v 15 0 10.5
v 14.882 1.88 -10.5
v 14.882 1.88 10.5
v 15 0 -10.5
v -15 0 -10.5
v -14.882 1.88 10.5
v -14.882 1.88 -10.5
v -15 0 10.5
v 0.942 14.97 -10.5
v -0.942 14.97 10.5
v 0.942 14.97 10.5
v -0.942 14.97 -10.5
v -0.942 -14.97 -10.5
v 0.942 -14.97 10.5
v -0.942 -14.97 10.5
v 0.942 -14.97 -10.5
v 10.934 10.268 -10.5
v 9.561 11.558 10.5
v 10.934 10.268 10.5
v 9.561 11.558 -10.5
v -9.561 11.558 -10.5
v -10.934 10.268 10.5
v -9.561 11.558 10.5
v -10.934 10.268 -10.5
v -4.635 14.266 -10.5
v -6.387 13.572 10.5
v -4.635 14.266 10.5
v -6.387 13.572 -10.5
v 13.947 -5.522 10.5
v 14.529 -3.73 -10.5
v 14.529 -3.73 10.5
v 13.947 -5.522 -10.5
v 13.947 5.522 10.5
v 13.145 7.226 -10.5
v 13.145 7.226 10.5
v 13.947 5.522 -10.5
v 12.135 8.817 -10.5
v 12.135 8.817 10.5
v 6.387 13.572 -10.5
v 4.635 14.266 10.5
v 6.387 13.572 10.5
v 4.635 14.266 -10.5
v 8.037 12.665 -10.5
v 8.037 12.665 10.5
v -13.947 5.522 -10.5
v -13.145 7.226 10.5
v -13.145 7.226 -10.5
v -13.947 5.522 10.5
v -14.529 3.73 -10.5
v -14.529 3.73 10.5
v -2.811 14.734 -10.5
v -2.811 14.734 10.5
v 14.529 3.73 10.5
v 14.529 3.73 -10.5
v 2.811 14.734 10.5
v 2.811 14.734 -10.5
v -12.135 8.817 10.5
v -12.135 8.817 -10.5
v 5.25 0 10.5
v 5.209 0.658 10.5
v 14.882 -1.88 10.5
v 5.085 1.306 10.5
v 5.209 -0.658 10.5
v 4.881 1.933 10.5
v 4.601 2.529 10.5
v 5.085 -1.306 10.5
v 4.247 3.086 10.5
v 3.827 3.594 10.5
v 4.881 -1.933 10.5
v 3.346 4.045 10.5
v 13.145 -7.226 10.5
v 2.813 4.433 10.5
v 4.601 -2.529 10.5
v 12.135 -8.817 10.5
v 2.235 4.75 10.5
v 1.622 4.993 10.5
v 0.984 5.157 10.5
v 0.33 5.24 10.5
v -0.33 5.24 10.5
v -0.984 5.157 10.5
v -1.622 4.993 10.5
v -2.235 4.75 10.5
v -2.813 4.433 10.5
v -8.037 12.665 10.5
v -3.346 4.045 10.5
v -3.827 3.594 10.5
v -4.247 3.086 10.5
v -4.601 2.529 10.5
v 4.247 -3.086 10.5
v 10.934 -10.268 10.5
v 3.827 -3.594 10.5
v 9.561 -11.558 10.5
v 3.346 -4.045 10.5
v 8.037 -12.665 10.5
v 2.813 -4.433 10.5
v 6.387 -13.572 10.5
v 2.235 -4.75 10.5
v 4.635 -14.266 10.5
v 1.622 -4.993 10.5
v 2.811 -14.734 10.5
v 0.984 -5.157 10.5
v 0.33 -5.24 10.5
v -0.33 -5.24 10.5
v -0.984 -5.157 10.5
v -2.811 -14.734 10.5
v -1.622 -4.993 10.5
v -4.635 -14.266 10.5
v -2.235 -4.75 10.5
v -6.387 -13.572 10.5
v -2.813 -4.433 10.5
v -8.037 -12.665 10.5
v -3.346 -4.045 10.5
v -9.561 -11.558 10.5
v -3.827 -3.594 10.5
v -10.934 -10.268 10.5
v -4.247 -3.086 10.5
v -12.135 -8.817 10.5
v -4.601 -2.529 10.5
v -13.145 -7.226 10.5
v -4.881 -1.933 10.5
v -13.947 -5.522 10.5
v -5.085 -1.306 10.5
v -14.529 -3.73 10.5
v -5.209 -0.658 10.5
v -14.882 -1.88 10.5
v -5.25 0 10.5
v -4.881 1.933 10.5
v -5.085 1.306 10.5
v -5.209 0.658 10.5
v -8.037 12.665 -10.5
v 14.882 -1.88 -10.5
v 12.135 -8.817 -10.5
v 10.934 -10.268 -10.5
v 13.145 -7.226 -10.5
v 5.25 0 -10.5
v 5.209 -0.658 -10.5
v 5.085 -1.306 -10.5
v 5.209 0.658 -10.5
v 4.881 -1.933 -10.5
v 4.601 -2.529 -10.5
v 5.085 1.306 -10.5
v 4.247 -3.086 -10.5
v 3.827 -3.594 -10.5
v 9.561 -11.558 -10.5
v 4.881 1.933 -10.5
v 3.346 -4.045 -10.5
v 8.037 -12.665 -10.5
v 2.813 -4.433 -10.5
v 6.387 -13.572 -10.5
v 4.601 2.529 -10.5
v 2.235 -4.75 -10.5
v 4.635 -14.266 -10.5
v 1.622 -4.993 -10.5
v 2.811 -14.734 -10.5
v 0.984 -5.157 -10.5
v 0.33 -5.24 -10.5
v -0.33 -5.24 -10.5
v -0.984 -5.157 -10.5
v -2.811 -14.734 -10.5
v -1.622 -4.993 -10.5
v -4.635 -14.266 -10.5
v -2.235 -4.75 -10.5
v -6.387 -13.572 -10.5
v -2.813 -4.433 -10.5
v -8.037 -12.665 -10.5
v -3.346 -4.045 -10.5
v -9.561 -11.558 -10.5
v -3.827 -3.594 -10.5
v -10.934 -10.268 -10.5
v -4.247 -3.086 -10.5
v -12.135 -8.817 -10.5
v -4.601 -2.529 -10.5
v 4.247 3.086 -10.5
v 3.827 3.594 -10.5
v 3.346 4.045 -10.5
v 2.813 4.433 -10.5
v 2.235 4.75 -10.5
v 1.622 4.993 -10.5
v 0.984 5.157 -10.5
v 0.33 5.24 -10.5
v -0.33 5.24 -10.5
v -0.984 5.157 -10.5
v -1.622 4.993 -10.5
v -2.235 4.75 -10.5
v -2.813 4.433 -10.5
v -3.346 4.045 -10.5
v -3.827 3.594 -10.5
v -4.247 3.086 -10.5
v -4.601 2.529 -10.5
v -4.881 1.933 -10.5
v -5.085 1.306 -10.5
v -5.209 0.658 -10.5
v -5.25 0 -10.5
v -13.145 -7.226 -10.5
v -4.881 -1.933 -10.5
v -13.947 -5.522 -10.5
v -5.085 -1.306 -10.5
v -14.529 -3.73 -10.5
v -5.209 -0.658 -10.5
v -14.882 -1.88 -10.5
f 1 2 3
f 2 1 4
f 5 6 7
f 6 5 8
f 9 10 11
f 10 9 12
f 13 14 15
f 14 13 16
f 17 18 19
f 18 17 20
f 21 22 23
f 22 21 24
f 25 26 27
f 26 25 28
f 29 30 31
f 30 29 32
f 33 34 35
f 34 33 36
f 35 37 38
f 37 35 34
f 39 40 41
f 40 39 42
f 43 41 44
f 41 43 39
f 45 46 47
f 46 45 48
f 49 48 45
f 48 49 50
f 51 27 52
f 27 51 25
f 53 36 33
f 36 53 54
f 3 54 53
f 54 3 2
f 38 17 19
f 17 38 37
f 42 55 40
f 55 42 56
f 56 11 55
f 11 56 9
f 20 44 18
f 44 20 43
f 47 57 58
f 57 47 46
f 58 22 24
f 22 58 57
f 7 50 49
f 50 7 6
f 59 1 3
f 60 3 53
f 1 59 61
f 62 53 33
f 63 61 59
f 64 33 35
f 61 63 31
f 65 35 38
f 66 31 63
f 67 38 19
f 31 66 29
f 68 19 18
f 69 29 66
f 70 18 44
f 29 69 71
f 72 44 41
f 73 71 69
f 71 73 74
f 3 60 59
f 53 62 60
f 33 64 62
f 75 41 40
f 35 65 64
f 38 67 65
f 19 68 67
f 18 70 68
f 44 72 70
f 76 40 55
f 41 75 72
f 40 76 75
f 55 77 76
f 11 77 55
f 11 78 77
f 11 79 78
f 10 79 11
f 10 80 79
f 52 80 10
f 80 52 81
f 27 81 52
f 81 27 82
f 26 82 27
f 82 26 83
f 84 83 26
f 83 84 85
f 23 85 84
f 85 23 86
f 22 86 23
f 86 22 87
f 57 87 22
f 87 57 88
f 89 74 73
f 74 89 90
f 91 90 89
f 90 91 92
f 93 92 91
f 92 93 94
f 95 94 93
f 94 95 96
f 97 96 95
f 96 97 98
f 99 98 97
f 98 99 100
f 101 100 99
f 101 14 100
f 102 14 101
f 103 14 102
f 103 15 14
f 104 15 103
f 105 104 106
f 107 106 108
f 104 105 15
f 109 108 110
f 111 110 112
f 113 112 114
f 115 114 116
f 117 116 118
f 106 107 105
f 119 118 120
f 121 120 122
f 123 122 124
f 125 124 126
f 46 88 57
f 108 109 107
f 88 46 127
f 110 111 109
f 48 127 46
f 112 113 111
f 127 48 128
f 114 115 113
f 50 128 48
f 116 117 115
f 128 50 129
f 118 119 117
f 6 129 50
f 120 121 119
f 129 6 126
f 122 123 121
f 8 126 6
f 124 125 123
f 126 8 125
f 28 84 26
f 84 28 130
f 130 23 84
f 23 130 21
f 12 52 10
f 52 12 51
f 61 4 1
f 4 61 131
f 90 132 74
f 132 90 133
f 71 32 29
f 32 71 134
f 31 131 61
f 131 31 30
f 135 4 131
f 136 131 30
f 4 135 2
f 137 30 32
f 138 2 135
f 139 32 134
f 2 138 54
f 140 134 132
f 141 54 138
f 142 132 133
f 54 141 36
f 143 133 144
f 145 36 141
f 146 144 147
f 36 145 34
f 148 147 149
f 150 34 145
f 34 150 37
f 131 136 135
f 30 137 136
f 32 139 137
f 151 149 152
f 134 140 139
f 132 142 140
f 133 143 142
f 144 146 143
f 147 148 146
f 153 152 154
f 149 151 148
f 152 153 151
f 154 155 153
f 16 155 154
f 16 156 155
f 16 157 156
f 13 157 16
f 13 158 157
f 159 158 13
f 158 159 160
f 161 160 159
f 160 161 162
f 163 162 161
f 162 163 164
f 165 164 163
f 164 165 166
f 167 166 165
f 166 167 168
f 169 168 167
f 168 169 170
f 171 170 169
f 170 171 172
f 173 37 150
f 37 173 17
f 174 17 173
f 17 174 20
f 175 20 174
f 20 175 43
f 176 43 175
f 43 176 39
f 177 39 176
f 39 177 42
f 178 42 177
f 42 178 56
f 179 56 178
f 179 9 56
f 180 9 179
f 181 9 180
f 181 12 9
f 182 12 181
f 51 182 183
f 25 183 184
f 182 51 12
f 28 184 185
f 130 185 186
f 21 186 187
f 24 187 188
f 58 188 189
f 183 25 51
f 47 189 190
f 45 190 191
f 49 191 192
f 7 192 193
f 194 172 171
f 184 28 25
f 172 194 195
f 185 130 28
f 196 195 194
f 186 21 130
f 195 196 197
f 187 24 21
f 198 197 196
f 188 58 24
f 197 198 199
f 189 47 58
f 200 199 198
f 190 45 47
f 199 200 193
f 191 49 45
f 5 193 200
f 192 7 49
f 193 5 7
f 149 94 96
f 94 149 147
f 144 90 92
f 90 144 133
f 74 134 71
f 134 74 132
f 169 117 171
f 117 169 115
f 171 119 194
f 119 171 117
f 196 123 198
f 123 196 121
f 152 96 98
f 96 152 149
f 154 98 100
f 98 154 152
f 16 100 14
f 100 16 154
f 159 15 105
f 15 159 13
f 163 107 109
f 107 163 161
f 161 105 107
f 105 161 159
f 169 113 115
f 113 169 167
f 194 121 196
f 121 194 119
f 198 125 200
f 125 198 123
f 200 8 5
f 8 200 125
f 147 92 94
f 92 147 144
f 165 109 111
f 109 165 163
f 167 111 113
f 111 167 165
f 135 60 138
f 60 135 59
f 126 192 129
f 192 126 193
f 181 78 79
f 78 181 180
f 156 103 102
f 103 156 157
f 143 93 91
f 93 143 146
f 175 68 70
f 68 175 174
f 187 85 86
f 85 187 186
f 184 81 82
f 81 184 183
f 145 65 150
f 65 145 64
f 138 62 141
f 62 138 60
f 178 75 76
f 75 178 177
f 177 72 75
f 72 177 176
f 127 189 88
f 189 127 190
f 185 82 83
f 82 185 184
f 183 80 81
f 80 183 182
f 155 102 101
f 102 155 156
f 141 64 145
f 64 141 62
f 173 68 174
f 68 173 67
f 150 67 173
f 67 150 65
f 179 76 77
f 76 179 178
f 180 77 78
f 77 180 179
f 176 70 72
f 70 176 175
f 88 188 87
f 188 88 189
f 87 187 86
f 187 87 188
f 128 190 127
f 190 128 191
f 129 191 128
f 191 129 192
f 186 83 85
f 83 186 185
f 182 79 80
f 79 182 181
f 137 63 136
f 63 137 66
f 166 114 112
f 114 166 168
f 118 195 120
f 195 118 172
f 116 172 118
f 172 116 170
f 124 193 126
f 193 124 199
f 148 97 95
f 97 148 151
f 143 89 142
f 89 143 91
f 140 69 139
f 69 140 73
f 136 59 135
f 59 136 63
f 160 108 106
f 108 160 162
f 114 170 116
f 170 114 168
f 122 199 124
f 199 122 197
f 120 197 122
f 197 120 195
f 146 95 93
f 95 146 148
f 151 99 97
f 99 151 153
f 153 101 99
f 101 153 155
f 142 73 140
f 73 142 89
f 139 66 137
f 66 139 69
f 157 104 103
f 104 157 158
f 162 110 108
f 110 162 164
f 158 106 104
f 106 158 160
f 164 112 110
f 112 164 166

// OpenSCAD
$fn = 50;


difference() {
	union() {
		translate(v = [0, 0, -10.5000000000]) {
			cylinder(h = 21, r = 15.0000000000);
		}
	}
	union() {
		translate(v = [0, 0, -100.0000000000]) {
			cylinder(h = 200, r = 5.2500000000);
		}
	}
}
